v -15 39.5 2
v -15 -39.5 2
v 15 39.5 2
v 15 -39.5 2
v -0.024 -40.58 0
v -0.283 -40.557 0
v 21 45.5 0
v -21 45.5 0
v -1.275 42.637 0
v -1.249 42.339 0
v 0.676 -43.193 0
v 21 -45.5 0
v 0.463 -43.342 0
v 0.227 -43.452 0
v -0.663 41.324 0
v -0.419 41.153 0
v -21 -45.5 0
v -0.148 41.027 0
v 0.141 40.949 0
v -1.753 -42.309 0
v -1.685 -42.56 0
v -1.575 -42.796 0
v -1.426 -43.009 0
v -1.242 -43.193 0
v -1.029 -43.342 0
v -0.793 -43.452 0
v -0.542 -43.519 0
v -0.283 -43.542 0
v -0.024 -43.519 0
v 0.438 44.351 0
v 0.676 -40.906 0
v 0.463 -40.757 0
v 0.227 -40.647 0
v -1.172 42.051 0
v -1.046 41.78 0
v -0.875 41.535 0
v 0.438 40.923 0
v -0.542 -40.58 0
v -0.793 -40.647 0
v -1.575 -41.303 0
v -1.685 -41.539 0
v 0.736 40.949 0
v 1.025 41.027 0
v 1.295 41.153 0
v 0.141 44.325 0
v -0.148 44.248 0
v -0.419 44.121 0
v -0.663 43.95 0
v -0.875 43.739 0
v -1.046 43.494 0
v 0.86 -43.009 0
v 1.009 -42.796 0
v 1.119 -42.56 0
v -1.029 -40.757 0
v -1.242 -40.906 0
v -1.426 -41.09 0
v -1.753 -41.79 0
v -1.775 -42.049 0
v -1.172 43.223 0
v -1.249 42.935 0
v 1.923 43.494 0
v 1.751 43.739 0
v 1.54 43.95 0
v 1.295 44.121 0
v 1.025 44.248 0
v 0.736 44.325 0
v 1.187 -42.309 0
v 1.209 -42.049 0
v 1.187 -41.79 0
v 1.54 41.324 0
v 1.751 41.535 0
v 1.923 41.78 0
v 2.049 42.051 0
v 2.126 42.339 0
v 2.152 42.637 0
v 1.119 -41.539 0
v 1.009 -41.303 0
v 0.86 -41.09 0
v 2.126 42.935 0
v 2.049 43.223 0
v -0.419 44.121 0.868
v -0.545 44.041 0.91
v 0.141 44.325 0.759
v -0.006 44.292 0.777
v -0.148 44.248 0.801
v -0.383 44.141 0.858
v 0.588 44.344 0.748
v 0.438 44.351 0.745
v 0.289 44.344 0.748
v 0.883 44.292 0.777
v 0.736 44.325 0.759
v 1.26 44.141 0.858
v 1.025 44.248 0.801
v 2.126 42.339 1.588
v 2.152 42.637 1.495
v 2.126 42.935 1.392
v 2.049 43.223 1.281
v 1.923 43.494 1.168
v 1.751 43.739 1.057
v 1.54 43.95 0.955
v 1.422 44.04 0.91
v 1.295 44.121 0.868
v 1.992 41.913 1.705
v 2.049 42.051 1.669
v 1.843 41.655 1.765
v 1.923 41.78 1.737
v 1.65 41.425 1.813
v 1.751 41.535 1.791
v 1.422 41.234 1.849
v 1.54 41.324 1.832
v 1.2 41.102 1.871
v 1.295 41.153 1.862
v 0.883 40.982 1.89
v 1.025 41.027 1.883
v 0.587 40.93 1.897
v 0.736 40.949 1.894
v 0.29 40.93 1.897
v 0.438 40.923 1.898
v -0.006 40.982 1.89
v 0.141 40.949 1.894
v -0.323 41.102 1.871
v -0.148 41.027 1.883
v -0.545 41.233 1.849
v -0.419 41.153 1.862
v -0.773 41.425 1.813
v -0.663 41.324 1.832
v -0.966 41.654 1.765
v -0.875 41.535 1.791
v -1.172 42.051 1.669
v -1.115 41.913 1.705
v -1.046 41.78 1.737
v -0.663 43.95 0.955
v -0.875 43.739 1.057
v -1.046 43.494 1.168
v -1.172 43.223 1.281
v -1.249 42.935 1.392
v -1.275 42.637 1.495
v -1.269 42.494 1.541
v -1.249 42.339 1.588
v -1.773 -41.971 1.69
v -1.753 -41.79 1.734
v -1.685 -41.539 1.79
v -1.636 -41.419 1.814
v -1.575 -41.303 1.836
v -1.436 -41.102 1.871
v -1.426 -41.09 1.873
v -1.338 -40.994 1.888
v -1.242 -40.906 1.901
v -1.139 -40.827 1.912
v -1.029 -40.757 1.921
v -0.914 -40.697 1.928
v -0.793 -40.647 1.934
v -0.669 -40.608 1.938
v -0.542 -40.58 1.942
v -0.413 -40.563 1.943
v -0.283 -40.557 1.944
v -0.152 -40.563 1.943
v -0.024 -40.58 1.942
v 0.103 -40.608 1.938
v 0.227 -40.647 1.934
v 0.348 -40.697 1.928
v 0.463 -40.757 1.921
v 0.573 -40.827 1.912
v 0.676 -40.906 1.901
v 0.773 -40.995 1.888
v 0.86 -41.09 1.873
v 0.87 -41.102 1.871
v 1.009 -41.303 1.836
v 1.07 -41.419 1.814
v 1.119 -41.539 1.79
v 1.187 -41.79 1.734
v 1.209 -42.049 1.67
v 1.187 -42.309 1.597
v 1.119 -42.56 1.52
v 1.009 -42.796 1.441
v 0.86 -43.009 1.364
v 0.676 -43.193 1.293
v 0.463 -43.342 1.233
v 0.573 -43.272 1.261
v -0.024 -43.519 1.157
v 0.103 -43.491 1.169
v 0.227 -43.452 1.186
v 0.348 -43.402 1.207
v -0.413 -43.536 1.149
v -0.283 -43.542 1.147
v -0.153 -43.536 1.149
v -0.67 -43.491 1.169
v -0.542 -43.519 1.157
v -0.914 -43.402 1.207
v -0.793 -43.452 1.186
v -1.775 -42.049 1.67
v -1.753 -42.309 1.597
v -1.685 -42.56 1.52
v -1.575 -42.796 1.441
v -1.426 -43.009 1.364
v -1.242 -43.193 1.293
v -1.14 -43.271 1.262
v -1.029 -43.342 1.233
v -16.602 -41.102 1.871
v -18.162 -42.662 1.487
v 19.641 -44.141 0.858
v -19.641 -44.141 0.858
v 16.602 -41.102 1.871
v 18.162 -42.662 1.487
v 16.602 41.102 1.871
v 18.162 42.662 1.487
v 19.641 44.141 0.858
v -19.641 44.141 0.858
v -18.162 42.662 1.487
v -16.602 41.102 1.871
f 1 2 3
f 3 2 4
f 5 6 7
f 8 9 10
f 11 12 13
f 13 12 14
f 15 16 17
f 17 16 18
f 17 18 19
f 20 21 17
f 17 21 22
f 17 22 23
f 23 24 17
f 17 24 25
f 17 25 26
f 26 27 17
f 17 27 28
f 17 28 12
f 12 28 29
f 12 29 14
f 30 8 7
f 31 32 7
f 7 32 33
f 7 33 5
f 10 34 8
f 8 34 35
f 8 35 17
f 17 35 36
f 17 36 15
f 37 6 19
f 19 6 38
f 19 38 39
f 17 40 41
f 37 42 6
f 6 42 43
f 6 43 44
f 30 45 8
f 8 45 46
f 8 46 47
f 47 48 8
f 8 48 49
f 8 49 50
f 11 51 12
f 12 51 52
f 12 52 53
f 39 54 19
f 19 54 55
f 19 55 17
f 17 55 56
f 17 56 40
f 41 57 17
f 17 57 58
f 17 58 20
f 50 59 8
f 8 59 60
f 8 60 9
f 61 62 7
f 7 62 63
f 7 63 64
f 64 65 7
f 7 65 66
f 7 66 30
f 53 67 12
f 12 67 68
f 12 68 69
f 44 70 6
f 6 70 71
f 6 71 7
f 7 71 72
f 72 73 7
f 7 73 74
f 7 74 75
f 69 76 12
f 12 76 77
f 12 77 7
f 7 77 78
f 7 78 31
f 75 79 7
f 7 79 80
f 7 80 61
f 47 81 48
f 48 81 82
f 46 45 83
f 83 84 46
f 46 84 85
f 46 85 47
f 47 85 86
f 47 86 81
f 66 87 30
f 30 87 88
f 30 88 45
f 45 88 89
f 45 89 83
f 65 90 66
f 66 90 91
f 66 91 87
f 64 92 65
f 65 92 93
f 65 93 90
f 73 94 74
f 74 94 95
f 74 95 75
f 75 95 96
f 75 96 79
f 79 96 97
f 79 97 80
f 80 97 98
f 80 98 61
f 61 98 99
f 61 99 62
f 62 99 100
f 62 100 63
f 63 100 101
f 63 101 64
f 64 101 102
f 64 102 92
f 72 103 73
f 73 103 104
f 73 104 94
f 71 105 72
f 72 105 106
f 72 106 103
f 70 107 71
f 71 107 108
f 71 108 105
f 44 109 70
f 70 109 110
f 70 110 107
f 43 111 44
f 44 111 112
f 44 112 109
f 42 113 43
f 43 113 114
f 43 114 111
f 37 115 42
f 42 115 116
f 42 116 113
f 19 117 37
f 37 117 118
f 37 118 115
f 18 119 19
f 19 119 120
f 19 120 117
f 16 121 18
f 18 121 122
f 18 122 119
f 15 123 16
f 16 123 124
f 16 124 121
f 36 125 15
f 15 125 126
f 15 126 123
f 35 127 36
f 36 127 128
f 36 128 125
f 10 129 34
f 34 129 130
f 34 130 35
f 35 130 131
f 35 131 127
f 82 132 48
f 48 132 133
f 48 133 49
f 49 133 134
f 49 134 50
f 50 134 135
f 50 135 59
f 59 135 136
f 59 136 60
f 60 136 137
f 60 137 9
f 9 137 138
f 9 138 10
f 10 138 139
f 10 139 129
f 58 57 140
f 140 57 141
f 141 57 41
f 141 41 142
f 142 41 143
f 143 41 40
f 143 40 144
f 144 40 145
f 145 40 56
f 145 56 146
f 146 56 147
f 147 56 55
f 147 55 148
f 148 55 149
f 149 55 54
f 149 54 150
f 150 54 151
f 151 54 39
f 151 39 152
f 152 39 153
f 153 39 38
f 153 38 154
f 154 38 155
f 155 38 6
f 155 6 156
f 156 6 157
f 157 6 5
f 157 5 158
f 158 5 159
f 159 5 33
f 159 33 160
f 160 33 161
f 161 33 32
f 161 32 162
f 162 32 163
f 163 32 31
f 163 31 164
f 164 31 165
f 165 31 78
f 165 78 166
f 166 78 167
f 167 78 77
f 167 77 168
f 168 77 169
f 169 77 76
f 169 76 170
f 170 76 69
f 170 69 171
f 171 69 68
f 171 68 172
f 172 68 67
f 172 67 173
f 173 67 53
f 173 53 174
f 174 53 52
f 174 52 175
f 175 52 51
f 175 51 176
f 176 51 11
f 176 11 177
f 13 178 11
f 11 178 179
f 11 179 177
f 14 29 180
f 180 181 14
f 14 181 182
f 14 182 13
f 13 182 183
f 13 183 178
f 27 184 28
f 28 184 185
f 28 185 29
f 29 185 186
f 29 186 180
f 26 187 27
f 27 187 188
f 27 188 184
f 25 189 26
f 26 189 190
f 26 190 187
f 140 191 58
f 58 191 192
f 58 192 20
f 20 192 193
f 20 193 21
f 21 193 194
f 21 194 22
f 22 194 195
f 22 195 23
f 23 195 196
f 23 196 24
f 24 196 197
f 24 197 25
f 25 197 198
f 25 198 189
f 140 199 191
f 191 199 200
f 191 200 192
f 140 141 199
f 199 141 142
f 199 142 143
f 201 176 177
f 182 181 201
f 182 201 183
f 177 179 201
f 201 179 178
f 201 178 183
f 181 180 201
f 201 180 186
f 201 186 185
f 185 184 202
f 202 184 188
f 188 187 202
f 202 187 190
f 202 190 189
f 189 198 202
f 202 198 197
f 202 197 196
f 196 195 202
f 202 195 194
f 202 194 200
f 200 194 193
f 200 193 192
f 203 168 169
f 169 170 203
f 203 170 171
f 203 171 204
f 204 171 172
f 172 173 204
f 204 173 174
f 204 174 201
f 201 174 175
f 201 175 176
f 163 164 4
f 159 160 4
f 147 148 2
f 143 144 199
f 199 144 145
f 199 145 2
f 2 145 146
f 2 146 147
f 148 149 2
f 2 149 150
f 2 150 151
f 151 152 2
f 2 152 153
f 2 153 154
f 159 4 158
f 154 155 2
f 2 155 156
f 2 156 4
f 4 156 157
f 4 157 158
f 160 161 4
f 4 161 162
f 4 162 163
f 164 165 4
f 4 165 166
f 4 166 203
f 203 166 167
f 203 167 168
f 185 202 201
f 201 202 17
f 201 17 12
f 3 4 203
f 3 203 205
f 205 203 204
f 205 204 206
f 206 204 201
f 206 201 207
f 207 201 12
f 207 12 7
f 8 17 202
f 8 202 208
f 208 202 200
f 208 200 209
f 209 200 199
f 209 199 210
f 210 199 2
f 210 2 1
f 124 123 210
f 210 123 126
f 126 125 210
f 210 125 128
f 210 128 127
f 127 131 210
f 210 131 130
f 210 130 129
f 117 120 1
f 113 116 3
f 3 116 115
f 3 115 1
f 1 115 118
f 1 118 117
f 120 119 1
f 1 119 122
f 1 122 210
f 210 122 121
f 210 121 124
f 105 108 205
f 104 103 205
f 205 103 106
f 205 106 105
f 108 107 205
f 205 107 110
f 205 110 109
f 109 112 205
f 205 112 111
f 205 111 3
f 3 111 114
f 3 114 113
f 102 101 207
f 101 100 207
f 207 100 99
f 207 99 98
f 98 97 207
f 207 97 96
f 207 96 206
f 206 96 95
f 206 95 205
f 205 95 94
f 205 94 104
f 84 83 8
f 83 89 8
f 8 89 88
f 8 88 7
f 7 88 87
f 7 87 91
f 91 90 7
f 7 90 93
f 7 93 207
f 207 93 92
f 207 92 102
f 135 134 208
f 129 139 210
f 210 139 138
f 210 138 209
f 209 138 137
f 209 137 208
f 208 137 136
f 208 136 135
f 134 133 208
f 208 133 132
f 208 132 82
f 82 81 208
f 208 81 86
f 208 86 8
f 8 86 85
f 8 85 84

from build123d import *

# Parameters (mm, degrees)
SKETCH1_W           = 42
SKETCH1_H           = 91
BOSS_EXTRUDE1_DEPTH = 2
SKETCH2_R           = 1.492291875
SKETCH2_R_2         = 1.71386304
CUT_EXTRUDE1_DEPTH  = 2
FILLET1_R           = 10


with BuildPart() as part:
    # Sketch1 → Boss-Extrude1 (new body)
    with BuildSketch(Plane.XY):
        Rectangle(SKETCH1_W, SKETCH1_H)
    extrude(amount=BOSS_EXTRUDE1_DEPTH)

    # Sketch2 → Cut-Extrude1 (cut)
    with BuildSketch(Plane.XY.offset(2)):
        with Locations((-0.283052716, -42.049438223)):
            Circle(SKETCH2_R)
        with Locations((0.438366209, 42.637044582)):
            Circle(SKETCH2_R_2)
    extrude(amount=-CUT_EXTRUDE1_DEPTH, mode=Mode.SUBTRACT)

    # Fillet1
    # the kernel refuses this fillet: 10 mm, written as the material it takes off along each edge
    with BuildSketch(Plane(origin=(-36, 45.5, 2), x_dir=(0, 0, -1), z_dir=(1, 0, 0))) as fillet1_piece_1:
        with BuildLine():
            CenterArc((10, -6), FILLET1_R, 143.130102354, 36.869897646)
            Line((0, -6), (-0.2, -6))
            Line((-0.2, -6), (-0.2, 0))
            Line((-0.2, 0), (0, 0.2))
            ThreePointArc((0, 0.2), (1, 0.2), (1.84, 0.12))
            Line((1.84, 0.12), (2, 0))
        make_face()
    extrude(amount=72, mode=Mode.SUBTRACT)
    with BuildSketch(Plane(origin=(-21, -60.5, 2), x_dir=(0, 0, -1), z_dir=(0, 1, 0)), Plane(origin=(21, 60.5, 2), x_dir=(0, 0, -1), z_dir=(0, -1, 0))) as fillet1_piece_2:
        with BuildLine():
            CenterArc((10, -6), FILLET1_R, 143.130102354, 36.869897646)
            Line((0, -6), (-0.2, -6))
            Line((-0.2, -6), (-0.2, 0))
            Line((-0.2, 0), (0, 0.2))
            ThreePointArc((0, 0.2), (1, 0.2), (1.84, 0.12))
            Line((1.84, 0.12), (2, 0))
        make_face()
    extrude(amount=121, mode=Mode.SUBTRACT)
    with BuildSketch(Plane(origin=(36, -45.5, 2), x_dir=(0, 1, 0), z_dir=(-1, 0, 0))) as fillet1_piece_3:
        with BuildLine():
            CenterArc((6, 10), FILLET1_R, 233.130102354, 36.869897646)
            Line((0, 2), (-0.12, 1.84))
            ThreePointArc((-0.12, 1.84), (-0.2, 1), (-0.2, 0))
            Line((-0.2, 0), (0, -0.2))
            Line((0, -0.2), (6, -0.2))
            Line((6, -0.2), (6, 0))
        make_face()
    extrude(amount=72, mode=Mode.SUBTRACT)


solid = part.part
